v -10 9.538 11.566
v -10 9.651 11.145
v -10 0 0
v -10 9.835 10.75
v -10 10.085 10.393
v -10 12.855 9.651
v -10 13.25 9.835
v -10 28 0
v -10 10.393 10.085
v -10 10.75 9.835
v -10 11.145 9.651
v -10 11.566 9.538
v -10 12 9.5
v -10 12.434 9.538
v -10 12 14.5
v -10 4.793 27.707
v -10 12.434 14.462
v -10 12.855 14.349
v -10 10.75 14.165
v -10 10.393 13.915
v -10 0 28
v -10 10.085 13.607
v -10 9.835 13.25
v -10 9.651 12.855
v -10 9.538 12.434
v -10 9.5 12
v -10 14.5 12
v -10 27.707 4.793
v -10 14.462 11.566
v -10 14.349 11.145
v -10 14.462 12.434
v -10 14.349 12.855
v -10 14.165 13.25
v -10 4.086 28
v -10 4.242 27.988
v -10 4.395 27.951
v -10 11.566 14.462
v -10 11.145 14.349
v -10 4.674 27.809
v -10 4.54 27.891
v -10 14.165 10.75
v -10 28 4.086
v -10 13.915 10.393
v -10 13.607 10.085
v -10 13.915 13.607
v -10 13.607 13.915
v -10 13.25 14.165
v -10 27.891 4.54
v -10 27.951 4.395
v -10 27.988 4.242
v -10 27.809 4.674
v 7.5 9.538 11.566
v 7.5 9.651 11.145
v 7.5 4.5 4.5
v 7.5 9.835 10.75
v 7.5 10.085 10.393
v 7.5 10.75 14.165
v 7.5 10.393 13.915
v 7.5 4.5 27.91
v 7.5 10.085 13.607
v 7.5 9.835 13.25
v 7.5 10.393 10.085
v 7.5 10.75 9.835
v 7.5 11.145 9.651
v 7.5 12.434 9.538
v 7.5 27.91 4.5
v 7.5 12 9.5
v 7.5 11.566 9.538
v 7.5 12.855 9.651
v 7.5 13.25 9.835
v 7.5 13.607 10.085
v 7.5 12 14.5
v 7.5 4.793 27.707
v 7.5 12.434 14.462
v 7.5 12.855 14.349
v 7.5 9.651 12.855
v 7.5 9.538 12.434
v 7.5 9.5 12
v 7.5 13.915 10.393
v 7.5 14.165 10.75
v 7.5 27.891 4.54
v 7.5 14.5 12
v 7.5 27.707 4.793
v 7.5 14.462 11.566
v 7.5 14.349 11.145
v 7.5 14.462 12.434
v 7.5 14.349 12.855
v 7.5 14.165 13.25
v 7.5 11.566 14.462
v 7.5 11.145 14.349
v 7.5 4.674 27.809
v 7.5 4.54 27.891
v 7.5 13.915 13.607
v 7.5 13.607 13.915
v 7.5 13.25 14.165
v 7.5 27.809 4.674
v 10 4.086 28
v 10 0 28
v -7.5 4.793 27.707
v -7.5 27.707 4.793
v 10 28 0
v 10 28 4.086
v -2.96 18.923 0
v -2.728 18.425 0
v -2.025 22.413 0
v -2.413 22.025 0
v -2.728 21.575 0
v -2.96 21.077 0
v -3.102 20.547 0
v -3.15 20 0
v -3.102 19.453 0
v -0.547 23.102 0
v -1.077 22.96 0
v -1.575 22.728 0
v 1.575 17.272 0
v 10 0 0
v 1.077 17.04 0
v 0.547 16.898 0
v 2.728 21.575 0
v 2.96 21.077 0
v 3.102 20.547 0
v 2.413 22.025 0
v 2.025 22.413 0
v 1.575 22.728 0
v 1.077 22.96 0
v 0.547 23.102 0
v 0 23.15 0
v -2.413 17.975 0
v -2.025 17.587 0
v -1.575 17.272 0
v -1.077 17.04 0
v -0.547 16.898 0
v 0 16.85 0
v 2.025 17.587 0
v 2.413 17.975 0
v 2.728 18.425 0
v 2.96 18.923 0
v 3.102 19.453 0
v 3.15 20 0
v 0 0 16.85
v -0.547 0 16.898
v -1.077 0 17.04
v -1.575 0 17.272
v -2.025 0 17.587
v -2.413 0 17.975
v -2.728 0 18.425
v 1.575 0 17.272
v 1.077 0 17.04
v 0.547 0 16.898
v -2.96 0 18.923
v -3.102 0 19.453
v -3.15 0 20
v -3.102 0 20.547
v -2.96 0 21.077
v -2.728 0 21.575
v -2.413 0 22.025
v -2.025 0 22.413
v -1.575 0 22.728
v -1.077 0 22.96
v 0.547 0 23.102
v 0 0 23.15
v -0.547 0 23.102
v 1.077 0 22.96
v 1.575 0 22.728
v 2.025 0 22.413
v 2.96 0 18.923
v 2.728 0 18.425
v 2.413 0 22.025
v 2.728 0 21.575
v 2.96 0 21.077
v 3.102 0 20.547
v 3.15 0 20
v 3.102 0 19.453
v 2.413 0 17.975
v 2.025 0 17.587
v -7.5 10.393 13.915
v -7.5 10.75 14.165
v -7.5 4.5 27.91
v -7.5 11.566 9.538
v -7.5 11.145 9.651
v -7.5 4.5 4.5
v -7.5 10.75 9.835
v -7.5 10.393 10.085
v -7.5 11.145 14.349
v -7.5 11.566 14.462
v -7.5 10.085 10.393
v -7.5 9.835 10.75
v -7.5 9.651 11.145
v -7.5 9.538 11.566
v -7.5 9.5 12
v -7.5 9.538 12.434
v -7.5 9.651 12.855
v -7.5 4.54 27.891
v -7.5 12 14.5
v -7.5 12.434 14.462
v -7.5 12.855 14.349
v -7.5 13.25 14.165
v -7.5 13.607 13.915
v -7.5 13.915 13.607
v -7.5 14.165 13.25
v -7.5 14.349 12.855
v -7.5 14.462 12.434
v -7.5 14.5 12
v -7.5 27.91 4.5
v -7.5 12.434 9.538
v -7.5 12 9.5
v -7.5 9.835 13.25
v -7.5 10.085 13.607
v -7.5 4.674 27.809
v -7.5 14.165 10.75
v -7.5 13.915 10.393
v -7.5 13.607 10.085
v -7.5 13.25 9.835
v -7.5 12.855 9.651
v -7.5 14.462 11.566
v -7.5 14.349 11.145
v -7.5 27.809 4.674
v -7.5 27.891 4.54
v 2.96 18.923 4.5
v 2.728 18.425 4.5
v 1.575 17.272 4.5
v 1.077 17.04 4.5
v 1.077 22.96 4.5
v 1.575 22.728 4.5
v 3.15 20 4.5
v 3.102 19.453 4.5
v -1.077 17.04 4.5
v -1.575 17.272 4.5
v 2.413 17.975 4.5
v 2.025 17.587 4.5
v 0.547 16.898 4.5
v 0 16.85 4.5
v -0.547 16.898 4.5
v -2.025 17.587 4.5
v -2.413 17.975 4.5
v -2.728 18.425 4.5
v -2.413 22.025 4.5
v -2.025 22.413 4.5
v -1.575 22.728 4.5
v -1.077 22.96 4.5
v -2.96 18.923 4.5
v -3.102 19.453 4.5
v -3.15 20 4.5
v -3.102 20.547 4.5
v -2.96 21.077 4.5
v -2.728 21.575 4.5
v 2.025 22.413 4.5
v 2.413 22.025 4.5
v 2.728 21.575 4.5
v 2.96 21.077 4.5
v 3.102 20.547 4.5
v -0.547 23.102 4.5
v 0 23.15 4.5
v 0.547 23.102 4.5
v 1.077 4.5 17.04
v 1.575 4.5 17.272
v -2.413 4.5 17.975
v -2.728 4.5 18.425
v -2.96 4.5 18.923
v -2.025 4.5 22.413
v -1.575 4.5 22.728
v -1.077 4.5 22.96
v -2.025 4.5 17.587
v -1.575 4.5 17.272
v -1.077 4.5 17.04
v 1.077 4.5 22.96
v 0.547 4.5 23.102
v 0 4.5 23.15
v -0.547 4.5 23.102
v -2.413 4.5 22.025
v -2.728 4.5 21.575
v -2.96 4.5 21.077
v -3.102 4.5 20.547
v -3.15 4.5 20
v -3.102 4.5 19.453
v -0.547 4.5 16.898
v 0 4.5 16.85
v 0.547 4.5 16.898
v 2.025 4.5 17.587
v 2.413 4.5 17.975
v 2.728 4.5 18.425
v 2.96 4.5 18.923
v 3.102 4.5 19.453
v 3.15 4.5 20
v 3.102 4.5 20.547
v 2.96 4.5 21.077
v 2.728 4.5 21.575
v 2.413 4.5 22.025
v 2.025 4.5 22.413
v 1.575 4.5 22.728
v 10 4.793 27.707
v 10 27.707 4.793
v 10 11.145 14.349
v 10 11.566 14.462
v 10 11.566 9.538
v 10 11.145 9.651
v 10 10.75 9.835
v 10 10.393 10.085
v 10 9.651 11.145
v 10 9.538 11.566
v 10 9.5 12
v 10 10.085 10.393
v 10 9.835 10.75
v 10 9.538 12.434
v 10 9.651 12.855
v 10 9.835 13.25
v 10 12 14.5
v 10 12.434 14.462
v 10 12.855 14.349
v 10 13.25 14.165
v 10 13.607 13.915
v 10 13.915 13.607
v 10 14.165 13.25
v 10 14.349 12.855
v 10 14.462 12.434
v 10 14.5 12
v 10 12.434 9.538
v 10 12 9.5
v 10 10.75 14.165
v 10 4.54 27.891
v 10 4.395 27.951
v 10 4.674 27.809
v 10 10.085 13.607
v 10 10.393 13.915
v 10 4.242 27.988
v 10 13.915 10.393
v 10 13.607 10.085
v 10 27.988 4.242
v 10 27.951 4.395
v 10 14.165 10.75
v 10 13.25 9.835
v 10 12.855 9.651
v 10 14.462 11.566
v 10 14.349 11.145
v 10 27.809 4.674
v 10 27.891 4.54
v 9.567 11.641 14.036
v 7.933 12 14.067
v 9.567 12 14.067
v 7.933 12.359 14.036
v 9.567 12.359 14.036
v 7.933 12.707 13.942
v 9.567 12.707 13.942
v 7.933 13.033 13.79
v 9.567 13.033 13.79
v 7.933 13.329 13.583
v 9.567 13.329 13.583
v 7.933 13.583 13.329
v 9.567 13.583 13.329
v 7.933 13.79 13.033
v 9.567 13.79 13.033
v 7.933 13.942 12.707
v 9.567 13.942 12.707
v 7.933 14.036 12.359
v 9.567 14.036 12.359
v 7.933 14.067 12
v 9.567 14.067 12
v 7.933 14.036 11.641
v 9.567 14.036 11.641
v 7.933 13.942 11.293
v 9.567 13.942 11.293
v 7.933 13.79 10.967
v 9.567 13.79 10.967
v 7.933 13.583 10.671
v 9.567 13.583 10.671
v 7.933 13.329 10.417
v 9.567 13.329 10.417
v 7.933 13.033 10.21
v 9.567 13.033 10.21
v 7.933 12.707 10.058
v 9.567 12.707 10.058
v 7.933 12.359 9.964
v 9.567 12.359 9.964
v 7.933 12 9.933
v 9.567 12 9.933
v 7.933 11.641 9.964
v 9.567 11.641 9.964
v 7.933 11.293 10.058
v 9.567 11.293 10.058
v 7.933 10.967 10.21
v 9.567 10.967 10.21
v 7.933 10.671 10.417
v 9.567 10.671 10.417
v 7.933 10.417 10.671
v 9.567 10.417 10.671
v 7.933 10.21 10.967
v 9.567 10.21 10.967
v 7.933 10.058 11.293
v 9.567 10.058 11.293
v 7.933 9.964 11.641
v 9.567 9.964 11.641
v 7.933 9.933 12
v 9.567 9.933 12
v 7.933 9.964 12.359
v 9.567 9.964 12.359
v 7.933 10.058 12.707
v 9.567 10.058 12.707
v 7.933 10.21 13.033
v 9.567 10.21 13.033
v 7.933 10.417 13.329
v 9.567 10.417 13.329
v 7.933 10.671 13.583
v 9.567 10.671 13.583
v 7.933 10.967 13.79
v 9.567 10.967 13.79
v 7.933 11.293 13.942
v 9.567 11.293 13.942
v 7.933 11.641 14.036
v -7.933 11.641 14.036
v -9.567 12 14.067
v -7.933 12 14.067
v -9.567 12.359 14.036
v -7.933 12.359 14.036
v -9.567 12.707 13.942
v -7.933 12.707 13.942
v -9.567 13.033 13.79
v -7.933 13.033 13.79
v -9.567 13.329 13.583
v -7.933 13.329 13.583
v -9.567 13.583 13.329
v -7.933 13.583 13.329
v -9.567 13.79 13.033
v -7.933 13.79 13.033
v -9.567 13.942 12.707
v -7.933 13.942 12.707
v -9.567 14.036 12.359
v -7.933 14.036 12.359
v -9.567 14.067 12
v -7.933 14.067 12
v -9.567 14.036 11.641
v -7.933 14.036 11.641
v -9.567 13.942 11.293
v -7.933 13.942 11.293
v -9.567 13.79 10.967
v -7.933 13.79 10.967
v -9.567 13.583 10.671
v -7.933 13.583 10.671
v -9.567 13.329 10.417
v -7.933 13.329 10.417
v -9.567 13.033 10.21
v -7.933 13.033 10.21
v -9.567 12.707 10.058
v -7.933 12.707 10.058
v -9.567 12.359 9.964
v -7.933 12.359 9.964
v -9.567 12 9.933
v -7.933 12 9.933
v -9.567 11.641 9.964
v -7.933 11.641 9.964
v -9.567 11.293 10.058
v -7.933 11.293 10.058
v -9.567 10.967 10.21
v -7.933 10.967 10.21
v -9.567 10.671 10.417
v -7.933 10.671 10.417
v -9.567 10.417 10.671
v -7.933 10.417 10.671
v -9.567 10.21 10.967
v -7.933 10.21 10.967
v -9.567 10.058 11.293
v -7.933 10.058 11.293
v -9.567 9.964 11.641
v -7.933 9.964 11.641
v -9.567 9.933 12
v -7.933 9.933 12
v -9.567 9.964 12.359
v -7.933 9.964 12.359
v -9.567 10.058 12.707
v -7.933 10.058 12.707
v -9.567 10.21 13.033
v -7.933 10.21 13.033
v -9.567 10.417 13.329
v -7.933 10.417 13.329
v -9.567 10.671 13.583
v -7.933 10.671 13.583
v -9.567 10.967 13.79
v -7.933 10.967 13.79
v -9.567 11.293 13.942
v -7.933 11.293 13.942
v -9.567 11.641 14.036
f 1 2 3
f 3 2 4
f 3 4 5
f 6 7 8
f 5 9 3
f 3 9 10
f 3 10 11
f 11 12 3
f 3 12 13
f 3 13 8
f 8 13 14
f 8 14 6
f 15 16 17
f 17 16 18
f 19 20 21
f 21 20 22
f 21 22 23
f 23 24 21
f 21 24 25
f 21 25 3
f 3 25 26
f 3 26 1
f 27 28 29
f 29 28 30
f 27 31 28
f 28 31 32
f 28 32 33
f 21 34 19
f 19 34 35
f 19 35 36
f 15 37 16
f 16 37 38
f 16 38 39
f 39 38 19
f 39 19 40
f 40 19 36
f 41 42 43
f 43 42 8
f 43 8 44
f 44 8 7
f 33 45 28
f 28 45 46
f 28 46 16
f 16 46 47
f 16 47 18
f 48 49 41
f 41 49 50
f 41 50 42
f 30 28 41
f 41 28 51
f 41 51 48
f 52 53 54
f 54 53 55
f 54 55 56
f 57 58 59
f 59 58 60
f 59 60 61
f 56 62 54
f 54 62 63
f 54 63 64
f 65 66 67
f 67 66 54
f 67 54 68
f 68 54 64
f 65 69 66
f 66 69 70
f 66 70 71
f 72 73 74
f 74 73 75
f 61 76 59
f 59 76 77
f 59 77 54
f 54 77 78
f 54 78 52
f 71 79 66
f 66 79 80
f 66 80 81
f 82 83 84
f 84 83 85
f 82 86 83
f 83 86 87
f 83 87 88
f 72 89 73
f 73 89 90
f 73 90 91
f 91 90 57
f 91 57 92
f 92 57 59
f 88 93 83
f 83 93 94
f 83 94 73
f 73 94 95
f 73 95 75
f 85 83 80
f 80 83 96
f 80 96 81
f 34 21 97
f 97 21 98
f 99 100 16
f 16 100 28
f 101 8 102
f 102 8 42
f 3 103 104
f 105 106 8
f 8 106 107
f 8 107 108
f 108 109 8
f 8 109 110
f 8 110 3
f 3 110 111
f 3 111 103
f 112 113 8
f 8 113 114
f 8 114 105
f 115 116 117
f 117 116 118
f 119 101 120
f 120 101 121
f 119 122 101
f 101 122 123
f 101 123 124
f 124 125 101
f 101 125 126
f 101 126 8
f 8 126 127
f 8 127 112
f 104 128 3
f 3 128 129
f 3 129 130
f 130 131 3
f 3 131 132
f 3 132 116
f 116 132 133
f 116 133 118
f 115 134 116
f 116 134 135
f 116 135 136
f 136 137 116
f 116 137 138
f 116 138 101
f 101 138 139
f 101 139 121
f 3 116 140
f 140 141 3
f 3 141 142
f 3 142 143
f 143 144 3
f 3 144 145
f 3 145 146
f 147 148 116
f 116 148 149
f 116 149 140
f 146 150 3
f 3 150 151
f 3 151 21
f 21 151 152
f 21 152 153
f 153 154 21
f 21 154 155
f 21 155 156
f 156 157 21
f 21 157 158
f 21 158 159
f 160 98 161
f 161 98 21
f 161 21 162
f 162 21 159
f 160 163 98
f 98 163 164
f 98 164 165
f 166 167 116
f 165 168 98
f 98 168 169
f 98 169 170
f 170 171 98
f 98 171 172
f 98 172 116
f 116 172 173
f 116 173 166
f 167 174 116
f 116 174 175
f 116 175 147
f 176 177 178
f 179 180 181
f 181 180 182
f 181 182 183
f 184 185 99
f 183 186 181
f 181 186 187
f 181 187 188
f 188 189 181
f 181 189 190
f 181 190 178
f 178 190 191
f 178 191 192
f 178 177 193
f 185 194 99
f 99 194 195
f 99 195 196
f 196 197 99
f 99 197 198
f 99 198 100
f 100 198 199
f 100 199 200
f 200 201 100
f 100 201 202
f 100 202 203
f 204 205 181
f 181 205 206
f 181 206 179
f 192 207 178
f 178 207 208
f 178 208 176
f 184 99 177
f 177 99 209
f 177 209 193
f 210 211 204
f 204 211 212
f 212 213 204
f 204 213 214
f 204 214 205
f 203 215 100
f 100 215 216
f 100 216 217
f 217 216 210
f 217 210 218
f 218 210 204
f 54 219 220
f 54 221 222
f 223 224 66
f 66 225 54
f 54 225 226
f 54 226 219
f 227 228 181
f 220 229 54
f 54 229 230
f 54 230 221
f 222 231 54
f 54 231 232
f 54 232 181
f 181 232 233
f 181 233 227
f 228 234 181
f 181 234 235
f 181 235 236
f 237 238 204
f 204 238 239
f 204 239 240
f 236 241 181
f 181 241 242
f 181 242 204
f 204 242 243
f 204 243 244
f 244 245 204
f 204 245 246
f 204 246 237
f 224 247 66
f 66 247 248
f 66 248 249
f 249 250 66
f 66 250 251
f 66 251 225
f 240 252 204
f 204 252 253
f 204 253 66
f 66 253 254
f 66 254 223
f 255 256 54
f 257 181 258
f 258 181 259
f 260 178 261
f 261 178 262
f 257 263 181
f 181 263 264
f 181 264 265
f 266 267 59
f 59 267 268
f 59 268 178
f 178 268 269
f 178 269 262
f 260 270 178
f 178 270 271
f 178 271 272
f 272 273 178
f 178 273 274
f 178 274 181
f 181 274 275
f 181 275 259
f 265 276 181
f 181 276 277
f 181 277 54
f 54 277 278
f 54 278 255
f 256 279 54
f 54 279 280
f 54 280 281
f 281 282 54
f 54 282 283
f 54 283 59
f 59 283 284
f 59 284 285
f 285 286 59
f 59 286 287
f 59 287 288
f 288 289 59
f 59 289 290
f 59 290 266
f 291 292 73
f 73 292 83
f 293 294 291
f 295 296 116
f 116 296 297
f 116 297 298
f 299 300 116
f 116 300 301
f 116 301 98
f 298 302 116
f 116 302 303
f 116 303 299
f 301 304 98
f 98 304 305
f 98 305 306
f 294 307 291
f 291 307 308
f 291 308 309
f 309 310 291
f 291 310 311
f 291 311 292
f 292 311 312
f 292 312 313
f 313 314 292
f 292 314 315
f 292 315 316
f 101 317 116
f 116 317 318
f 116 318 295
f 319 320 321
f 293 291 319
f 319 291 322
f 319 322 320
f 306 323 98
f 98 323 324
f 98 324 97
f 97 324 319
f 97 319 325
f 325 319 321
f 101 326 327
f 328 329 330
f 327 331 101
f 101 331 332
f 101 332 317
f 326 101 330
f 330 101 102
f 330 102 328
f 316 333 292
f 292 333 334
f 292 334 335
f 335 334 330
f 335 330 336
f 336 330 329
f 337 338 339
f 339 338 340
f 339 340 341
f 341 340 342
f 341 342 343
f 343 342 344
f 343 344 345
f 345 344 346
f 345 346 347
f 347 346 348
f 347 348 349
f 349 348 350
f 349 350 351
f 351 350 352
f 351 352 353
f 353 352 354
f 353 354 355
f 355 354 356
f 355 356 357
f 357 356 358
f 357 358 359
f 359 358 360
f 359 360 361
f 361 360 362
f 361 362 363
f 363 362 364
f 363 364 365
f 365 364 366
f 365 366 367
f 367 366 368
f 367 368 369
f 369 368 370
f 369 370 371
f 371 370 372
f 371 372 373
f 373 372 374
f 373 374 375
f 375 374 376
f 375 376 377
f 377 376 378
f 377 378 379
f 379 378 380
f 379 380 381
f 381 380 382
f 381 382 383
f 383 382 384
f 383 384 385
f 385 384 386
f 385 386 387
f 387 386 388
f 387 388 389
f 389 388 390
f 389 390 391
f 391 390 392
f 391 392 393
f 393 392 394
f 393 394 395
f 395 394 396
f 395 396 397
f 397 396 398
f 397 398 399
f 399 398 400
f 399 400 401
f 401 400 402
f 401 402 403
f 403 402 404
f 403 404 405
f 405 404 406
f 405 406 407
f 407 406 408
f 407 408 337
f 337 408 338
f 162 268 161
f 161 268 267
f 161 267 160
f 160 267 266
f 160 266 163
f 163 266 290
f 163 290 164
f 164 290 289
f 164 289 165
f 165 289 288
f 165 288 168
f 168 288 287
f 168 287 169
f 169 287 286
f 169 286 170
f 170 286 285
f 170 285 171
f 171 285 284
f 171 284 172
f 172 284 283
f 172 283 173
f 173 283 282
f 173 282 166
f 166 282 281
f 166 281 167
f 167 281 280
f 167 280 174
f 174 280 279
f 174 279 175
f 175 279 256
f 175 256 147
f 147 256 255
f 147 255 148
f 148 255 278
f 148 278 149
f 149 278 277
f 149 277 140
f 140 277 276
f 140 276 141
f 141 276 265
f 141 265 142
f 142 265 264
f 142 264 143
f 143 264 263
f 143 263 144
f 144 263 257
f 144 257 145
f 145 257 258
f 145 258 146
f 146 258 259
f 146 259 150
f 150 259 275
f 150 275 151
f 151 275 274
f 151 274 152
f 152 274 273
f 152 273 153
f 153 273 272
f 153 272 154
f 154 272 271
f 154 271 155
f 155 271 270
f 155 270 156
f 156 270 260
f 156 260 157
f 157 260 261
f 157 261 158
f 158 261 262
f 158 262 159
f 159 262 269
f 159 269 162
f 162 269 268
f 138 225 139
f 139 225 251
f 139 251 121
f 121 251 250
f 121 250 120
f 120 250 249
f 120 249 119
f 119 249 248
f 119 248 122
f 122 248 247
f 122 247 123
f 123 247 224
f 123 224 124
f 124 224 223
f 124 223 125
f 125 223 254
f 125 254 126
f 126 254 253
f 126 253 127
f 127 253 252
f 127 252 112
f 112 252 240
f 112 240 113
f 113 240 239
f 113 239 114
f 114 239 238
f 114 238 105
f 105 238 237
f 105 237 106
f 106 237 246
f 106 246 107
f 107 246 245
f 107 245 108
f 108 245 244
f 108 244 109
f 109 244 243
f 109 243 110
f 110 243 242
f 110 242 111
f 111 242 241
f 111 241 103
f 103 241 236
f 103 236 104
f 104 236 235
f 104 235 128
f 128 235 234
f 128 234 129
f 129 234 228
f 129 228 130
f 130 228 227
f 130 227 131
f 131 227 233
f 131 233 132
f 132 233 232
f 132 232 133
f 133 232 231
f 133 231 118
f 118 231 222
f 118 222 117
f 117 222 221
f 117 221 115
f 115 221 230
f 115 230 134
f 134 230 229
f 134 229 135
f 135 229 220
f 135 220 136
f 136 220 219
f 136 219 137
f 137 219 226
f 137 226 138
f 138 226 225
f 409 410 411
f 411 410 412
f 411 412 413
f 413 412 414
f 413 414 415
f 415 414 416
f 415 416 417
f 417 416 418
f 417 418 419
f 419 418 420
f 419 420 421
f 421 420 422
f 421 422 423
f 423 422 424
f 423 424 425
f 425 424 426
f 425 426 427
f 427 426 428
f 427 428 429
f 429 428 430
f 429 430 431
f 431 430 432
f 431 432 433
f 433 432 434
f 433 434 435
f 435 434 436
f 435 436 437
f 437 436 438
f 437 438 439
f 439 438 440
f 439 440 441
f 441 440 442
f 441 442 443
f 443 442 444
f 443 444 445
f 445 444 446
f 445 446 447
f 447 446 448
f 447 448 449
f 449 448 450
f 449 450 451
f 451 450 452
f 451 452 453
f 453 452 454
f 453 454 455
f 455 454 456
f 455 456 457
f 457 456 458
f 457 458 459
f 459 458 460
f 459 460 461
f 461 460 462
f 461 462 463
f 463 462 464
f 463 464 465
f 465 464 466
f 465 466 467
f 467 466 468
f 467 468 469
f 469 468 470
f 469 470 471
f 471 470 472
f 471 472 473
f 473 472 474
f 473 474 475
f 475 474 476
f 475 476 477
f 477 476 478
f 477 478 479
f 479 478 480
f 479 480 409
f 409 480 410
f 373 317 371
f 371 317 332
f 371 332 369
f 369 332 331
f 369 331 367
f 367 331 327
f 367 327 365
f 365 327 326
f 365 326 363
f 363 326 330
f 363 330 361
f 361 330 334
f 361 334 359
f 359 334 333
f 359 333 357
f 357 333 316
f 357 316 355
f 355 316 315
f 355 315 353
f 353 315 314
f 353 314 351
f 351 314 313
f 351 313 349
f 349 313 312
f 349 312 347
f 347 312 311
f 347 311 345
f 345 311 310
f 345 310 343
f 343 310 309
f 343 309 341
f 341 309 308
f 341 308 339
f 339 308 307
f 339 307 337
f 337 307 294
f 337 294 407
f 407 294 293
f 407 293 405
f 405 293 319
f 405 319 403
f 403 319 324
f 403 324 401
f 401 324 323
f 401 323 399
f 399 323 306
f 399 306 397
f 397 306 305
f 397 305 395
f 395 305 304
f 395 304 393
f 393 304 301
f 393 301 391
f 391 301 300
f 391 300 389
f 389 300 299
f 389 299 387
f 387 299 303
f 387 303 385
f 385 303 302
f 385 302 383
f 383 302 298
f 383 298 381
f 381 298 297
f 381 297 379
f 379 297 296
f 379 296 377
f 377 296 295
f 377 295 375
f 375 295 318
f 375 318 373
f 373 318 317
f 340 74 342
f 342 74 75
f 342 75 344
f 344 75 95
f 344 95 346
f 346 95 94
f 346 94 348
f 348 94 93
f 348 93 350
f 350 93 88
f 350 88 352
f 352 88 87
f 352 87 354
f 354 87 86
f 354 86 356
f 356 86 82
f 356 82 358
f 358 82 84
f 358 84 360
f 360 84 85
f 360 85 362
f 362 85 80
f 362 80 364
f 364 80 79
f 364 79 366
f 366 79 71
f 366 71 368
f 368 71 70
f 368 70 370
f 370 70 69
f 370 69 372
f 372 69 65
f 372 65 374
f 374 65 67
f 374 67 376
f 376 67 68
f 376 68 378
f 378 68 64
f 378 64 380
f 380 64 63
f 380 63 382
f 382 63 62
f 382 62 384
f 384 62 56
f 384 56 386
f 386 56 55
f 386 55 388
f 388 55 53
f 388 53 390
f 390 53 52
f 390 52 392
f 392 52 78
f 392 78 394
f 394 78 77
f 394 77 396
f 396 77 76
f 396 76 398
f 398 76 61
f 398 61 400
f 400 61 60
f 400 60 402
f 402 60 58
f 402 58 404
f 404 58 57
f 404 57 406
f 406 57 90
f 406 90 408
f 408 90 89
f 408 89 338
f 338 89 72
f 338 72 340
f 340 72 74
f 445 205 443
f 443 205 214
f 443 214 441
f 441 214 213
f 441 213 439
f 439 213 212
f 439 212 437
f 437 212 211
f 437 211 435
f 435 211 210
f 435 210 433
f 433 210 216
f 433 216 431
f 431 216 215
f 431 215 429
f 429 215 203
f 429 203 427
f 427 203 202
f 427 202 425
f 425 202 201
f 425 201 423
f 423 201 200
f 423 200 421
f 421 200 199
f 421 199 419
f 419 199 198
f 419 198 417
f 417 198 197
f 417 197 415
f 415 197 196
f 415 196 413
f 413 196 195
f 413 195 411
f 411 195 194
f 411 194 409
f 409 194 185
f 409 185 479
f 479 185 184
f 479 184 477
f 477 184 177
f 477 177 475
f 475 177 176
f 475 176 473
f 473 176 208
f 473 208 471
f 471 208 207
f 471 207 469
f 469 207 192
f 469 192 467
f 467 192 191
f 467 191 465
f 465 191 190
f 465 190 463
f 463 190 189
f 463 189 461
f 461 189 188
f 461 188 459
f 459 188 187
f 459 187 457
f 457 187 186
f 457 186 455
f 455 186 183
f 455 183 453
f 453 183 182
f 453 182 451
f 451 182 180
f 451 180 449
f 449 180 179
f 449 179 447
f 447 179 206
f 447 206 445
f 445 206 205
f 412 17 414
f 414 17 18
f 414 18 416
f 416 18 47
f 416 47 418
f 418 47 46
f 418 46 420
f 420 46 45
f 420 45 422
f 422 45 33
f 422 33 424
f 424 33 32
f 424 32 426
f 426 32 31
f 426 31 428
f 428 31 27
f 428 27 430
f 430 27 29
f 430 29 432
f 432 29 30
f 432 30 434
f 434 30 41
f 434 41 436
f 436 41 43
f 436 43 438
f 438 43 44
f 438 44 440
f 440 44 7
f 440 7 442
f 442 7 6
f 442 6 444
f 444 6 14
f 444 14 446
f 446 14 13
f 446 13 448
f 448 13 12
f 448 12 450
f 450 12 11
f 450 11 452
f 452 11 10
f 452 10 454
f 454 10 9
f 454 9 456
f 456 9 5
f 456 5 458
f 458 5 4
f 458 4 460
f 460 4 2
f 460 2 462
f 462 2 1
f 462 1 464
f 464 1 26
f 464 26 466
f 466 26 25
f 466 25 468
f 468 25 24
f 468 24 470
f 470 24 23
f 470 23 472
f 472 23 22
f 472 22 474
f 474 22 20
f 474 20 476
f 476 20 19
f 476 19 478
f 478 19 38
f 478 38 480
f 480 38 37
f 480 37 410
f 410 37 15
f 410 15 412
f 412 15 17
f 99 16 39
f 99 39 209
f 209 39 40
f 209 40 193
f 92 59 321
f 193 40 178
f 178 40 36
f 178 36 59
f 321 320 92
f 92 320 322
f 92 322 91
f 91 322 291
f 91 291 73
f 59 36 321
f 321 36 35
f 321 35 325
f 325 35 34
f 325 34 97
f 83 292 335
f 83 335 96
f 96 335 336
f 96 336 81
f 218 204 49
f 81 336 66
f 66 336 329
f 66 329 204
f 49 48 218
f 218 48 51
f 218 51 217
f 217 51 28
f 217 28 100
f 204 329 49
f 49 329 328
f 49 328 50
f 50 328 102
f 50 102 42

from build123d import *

# Parameters (mm, degrees)
BOSS_EXTRUDE1_DEPTH        = 2.5
SKETCH2_W                  = 15
SKETCH2_H                  = 23.5
BOSS_EXTRUDE2_DEPTH        = 23.5
SKETCH3_W                  = 17.5
SKETCH3_H                  = 23.5
BOSS_EXTRUDE3_DEPTH        = 4.5
SKETCH4_W                  = 17.5
SKETCH4_H                  = 28
BOSS_EXTRUDE4_DEPTH        = 4.5
SKETCH5_W                  = 15
SKETCH5_H                  = 23.5
CUT_EXTRUDE1_DEPTH         = 23.5
BOSS_EXTRUDE5_DEPTH        = 2.5
M3_5_CLEARANCE_HOLE1_D     = 4.134
M3_5_CLEARANCE_HOLE1_DEPTH = 2.5
F_6_3_6_3_DIAMETER_HOLE1_D = 6.3
F_6_3_6_3_DIAMETER_HOLE2_D = 6.3
M3_5_CLEARANCE_HOLE2_D     = 4.134
M3_5_CLEARANCE_HOLE2_DEPTH = 20
CHAMFER1_SIZE              = 0.433
FILLET2_START              = -11
FILLET2_DEPTH              = 22


with BuildPart() as part:
    # Sketch1 → Boss-Extrude1 (new body)
    with BuildSketch(Plane(origin=(-10, 0, 0), x_dir=(0, -1, 0), z_dir=(-1, 0, 0))):
        with BuildLine():
            Line((-27.707106781, 4.792893219), (-28, 4.5))
            Line((-28, 4.5), (-4.5, 4.5))
            Line((-4.5, 4.5), (-4.5, 28))
            Line((-4.5, 28), (-4.792893219, 27.707106781))
            add(Edge.make_bspline(
                [(-4.792893219, 27.707106781), (-12.430964406, 20.069035594), (-20.069035594, 12.430964406), (-27.707106781, 4.792893219)],
                knots=[0, 0, 0, 0, 1, 1, 1, 1], degree=3))
        make_face()
    extrude(amount=-BOSS_EXTRUDE1_DEPTH)

    # Sketch2 → Boss-Extrude2 (add)
    with BuildSketch(Plane.XZ.offset(-4.5)):
        with Locations((0, 16.25)):
            Rectangle(SKETCH2_W, SKETCH2_H)
    extrude(amount=-BOSS_EXTRUDE2_DEPTH)

    # Sketch3 → Boss-Extrude3 (add)
    with BuildSketch(Plane(origin=(0, 0, 4.5), x_dir=(-1, 0, 0), z_dir=(0, 0, -1))):
        with Locations((1.25, 16.25)):
            Rectangle(SKETCH3_W, SKETCH3_H)
    extrude(amount=BOSS_EXTRUDE3_DEPTH)

    # Sketch4 → Boss-Extrude4 (add)
    with BuildSketch(Plane.XZ.offset(-4.5)):
        with Locations((-1.25, 14)):
            Rectangle(SKETCH4_W, SKETCH4_H)
    extrude(amount=BOSS_EXTRUDE4_DEPTH)

    # Sketch5 → Cut-Extrude1 (cut)
    with BuildSketch(Plane(origin=(0, 28, 0), x_dir=(-1, 0, 0), z_dir=(0, 1, 0))):
        with Locations((0, 16.25)):
            Rectangle(SKETCH5_W, SKETCH5_H)
    extrude(amount=-CUT_EXTRUDE1_DEPTH, mode=Mode.SUBTRACT)

    # Sketch6 → Boss-Extrude5 (add)
    with BuildSketch(Plane(origin=(7.5, 0, 0), x_dir=(0, 0, -1), z_dir=(1, 0, 0))):
        with BuildLine():
            Line((-28, 0), (-28, 4.5))
            Line((-28, 4.5), (-27.707106781, 4.792893219))
            add(Edge.make_bspline(
                [(-4.792893219, 27.707106781), (-12.430964406, 20.069035594), (-20.069035594, 12.430964406), (-27.707106781, 4.792893219)],
                knots=[0, 0, 0, 0, 1, 1, 1, 1], degree=3))
            Line((-4.792893219, 27.707106781), (-4.5, 28))
            Line((-4.5, 28), (0, 28))
            Line((0, 28), (0, 0))
            Line((0, 0), (-28, 0))
        make_face()
    extrude(amount=BOSS_EXTRUDE5_DEPTH)

    # M3.5 Clearance Hole1
    with Locations(Plane.ZY.offset(-7.5)):
        with Locations((12, 12)):
            Hole(M3_5_CLEARANCE_HOLE1_D / 2, depth=M3_5_CLEARANCE_HOLE1_DEPTH)

    # Ø6.3 (6.3) Diameter Hole1 (through all)
    with Locations(Plane(origin=(0, 4.5, 0), x_dir=(1, 0, 0), z_dir=(0, 1, 0))):
        with Locations((0, -20)):
            Hole(F_6_3_6_3_DIAMETER_HOLE1_D / 2)

    # Ø6.3 (6.3) Diameter Hole2 (through all)
    with Locations(Plane.XY.offset(4.5)):
        with Locations((0, 20)):
            Hole(F_6_3_6_3_DIAMETER_HOLE2_D / 2)

    # M3.5 Clearance Hole2
    with Locations(Plane.ZY.offset(10)):
        with Locations((12, 12)):
            Hole(M3_5_CLEARANCE_HOLE2_D / 2, depth=M3_5_CLEARANCE_HOLE2_DEPTH)

    # Chamfer1
    chamfer1_edges = [part.edges().sort_by_distance(p)[0] for p in [
        (-7.5, 12, 14.067),
        (-10, 12, 14.067),
        (7.5, 12, 14.067),
        (10, 12, 14.067),
    ]]
    chamfer(chamfer1_edges, length=CHAMFER1_SIZE)

    # Fillet2: read off the stored shape, not the designer's step
    # Fillet2 outline → Fillet2 (cut)
    with BuildSketch(Plane.YZ.offset(FILLET2_START)):
        with BuildLine():
            Line((4.5, 28), (4.085786438, 28))
            ThreePointArc((4.085786438, 28), (4.46846987, 27.923879533), (4.792893219, 27.707106781))
            Line((4.792893219, 27.707106781), (4.5, 28))
        make_face()
        with BuildLine():
            Line((28, 4.5), (27.707106781, 4.792893219))
            ThreePointArc((27.707106781, 4.792893219), (27.923879533, 4.46846987), (28, 4.085786438))
            Line((28, 4.085786438), (28, 4.5))
        make_face()
    extrude(amount=FILLET2_DEPTH, mode=Mode.SUBTRACT)


solid = part.part
